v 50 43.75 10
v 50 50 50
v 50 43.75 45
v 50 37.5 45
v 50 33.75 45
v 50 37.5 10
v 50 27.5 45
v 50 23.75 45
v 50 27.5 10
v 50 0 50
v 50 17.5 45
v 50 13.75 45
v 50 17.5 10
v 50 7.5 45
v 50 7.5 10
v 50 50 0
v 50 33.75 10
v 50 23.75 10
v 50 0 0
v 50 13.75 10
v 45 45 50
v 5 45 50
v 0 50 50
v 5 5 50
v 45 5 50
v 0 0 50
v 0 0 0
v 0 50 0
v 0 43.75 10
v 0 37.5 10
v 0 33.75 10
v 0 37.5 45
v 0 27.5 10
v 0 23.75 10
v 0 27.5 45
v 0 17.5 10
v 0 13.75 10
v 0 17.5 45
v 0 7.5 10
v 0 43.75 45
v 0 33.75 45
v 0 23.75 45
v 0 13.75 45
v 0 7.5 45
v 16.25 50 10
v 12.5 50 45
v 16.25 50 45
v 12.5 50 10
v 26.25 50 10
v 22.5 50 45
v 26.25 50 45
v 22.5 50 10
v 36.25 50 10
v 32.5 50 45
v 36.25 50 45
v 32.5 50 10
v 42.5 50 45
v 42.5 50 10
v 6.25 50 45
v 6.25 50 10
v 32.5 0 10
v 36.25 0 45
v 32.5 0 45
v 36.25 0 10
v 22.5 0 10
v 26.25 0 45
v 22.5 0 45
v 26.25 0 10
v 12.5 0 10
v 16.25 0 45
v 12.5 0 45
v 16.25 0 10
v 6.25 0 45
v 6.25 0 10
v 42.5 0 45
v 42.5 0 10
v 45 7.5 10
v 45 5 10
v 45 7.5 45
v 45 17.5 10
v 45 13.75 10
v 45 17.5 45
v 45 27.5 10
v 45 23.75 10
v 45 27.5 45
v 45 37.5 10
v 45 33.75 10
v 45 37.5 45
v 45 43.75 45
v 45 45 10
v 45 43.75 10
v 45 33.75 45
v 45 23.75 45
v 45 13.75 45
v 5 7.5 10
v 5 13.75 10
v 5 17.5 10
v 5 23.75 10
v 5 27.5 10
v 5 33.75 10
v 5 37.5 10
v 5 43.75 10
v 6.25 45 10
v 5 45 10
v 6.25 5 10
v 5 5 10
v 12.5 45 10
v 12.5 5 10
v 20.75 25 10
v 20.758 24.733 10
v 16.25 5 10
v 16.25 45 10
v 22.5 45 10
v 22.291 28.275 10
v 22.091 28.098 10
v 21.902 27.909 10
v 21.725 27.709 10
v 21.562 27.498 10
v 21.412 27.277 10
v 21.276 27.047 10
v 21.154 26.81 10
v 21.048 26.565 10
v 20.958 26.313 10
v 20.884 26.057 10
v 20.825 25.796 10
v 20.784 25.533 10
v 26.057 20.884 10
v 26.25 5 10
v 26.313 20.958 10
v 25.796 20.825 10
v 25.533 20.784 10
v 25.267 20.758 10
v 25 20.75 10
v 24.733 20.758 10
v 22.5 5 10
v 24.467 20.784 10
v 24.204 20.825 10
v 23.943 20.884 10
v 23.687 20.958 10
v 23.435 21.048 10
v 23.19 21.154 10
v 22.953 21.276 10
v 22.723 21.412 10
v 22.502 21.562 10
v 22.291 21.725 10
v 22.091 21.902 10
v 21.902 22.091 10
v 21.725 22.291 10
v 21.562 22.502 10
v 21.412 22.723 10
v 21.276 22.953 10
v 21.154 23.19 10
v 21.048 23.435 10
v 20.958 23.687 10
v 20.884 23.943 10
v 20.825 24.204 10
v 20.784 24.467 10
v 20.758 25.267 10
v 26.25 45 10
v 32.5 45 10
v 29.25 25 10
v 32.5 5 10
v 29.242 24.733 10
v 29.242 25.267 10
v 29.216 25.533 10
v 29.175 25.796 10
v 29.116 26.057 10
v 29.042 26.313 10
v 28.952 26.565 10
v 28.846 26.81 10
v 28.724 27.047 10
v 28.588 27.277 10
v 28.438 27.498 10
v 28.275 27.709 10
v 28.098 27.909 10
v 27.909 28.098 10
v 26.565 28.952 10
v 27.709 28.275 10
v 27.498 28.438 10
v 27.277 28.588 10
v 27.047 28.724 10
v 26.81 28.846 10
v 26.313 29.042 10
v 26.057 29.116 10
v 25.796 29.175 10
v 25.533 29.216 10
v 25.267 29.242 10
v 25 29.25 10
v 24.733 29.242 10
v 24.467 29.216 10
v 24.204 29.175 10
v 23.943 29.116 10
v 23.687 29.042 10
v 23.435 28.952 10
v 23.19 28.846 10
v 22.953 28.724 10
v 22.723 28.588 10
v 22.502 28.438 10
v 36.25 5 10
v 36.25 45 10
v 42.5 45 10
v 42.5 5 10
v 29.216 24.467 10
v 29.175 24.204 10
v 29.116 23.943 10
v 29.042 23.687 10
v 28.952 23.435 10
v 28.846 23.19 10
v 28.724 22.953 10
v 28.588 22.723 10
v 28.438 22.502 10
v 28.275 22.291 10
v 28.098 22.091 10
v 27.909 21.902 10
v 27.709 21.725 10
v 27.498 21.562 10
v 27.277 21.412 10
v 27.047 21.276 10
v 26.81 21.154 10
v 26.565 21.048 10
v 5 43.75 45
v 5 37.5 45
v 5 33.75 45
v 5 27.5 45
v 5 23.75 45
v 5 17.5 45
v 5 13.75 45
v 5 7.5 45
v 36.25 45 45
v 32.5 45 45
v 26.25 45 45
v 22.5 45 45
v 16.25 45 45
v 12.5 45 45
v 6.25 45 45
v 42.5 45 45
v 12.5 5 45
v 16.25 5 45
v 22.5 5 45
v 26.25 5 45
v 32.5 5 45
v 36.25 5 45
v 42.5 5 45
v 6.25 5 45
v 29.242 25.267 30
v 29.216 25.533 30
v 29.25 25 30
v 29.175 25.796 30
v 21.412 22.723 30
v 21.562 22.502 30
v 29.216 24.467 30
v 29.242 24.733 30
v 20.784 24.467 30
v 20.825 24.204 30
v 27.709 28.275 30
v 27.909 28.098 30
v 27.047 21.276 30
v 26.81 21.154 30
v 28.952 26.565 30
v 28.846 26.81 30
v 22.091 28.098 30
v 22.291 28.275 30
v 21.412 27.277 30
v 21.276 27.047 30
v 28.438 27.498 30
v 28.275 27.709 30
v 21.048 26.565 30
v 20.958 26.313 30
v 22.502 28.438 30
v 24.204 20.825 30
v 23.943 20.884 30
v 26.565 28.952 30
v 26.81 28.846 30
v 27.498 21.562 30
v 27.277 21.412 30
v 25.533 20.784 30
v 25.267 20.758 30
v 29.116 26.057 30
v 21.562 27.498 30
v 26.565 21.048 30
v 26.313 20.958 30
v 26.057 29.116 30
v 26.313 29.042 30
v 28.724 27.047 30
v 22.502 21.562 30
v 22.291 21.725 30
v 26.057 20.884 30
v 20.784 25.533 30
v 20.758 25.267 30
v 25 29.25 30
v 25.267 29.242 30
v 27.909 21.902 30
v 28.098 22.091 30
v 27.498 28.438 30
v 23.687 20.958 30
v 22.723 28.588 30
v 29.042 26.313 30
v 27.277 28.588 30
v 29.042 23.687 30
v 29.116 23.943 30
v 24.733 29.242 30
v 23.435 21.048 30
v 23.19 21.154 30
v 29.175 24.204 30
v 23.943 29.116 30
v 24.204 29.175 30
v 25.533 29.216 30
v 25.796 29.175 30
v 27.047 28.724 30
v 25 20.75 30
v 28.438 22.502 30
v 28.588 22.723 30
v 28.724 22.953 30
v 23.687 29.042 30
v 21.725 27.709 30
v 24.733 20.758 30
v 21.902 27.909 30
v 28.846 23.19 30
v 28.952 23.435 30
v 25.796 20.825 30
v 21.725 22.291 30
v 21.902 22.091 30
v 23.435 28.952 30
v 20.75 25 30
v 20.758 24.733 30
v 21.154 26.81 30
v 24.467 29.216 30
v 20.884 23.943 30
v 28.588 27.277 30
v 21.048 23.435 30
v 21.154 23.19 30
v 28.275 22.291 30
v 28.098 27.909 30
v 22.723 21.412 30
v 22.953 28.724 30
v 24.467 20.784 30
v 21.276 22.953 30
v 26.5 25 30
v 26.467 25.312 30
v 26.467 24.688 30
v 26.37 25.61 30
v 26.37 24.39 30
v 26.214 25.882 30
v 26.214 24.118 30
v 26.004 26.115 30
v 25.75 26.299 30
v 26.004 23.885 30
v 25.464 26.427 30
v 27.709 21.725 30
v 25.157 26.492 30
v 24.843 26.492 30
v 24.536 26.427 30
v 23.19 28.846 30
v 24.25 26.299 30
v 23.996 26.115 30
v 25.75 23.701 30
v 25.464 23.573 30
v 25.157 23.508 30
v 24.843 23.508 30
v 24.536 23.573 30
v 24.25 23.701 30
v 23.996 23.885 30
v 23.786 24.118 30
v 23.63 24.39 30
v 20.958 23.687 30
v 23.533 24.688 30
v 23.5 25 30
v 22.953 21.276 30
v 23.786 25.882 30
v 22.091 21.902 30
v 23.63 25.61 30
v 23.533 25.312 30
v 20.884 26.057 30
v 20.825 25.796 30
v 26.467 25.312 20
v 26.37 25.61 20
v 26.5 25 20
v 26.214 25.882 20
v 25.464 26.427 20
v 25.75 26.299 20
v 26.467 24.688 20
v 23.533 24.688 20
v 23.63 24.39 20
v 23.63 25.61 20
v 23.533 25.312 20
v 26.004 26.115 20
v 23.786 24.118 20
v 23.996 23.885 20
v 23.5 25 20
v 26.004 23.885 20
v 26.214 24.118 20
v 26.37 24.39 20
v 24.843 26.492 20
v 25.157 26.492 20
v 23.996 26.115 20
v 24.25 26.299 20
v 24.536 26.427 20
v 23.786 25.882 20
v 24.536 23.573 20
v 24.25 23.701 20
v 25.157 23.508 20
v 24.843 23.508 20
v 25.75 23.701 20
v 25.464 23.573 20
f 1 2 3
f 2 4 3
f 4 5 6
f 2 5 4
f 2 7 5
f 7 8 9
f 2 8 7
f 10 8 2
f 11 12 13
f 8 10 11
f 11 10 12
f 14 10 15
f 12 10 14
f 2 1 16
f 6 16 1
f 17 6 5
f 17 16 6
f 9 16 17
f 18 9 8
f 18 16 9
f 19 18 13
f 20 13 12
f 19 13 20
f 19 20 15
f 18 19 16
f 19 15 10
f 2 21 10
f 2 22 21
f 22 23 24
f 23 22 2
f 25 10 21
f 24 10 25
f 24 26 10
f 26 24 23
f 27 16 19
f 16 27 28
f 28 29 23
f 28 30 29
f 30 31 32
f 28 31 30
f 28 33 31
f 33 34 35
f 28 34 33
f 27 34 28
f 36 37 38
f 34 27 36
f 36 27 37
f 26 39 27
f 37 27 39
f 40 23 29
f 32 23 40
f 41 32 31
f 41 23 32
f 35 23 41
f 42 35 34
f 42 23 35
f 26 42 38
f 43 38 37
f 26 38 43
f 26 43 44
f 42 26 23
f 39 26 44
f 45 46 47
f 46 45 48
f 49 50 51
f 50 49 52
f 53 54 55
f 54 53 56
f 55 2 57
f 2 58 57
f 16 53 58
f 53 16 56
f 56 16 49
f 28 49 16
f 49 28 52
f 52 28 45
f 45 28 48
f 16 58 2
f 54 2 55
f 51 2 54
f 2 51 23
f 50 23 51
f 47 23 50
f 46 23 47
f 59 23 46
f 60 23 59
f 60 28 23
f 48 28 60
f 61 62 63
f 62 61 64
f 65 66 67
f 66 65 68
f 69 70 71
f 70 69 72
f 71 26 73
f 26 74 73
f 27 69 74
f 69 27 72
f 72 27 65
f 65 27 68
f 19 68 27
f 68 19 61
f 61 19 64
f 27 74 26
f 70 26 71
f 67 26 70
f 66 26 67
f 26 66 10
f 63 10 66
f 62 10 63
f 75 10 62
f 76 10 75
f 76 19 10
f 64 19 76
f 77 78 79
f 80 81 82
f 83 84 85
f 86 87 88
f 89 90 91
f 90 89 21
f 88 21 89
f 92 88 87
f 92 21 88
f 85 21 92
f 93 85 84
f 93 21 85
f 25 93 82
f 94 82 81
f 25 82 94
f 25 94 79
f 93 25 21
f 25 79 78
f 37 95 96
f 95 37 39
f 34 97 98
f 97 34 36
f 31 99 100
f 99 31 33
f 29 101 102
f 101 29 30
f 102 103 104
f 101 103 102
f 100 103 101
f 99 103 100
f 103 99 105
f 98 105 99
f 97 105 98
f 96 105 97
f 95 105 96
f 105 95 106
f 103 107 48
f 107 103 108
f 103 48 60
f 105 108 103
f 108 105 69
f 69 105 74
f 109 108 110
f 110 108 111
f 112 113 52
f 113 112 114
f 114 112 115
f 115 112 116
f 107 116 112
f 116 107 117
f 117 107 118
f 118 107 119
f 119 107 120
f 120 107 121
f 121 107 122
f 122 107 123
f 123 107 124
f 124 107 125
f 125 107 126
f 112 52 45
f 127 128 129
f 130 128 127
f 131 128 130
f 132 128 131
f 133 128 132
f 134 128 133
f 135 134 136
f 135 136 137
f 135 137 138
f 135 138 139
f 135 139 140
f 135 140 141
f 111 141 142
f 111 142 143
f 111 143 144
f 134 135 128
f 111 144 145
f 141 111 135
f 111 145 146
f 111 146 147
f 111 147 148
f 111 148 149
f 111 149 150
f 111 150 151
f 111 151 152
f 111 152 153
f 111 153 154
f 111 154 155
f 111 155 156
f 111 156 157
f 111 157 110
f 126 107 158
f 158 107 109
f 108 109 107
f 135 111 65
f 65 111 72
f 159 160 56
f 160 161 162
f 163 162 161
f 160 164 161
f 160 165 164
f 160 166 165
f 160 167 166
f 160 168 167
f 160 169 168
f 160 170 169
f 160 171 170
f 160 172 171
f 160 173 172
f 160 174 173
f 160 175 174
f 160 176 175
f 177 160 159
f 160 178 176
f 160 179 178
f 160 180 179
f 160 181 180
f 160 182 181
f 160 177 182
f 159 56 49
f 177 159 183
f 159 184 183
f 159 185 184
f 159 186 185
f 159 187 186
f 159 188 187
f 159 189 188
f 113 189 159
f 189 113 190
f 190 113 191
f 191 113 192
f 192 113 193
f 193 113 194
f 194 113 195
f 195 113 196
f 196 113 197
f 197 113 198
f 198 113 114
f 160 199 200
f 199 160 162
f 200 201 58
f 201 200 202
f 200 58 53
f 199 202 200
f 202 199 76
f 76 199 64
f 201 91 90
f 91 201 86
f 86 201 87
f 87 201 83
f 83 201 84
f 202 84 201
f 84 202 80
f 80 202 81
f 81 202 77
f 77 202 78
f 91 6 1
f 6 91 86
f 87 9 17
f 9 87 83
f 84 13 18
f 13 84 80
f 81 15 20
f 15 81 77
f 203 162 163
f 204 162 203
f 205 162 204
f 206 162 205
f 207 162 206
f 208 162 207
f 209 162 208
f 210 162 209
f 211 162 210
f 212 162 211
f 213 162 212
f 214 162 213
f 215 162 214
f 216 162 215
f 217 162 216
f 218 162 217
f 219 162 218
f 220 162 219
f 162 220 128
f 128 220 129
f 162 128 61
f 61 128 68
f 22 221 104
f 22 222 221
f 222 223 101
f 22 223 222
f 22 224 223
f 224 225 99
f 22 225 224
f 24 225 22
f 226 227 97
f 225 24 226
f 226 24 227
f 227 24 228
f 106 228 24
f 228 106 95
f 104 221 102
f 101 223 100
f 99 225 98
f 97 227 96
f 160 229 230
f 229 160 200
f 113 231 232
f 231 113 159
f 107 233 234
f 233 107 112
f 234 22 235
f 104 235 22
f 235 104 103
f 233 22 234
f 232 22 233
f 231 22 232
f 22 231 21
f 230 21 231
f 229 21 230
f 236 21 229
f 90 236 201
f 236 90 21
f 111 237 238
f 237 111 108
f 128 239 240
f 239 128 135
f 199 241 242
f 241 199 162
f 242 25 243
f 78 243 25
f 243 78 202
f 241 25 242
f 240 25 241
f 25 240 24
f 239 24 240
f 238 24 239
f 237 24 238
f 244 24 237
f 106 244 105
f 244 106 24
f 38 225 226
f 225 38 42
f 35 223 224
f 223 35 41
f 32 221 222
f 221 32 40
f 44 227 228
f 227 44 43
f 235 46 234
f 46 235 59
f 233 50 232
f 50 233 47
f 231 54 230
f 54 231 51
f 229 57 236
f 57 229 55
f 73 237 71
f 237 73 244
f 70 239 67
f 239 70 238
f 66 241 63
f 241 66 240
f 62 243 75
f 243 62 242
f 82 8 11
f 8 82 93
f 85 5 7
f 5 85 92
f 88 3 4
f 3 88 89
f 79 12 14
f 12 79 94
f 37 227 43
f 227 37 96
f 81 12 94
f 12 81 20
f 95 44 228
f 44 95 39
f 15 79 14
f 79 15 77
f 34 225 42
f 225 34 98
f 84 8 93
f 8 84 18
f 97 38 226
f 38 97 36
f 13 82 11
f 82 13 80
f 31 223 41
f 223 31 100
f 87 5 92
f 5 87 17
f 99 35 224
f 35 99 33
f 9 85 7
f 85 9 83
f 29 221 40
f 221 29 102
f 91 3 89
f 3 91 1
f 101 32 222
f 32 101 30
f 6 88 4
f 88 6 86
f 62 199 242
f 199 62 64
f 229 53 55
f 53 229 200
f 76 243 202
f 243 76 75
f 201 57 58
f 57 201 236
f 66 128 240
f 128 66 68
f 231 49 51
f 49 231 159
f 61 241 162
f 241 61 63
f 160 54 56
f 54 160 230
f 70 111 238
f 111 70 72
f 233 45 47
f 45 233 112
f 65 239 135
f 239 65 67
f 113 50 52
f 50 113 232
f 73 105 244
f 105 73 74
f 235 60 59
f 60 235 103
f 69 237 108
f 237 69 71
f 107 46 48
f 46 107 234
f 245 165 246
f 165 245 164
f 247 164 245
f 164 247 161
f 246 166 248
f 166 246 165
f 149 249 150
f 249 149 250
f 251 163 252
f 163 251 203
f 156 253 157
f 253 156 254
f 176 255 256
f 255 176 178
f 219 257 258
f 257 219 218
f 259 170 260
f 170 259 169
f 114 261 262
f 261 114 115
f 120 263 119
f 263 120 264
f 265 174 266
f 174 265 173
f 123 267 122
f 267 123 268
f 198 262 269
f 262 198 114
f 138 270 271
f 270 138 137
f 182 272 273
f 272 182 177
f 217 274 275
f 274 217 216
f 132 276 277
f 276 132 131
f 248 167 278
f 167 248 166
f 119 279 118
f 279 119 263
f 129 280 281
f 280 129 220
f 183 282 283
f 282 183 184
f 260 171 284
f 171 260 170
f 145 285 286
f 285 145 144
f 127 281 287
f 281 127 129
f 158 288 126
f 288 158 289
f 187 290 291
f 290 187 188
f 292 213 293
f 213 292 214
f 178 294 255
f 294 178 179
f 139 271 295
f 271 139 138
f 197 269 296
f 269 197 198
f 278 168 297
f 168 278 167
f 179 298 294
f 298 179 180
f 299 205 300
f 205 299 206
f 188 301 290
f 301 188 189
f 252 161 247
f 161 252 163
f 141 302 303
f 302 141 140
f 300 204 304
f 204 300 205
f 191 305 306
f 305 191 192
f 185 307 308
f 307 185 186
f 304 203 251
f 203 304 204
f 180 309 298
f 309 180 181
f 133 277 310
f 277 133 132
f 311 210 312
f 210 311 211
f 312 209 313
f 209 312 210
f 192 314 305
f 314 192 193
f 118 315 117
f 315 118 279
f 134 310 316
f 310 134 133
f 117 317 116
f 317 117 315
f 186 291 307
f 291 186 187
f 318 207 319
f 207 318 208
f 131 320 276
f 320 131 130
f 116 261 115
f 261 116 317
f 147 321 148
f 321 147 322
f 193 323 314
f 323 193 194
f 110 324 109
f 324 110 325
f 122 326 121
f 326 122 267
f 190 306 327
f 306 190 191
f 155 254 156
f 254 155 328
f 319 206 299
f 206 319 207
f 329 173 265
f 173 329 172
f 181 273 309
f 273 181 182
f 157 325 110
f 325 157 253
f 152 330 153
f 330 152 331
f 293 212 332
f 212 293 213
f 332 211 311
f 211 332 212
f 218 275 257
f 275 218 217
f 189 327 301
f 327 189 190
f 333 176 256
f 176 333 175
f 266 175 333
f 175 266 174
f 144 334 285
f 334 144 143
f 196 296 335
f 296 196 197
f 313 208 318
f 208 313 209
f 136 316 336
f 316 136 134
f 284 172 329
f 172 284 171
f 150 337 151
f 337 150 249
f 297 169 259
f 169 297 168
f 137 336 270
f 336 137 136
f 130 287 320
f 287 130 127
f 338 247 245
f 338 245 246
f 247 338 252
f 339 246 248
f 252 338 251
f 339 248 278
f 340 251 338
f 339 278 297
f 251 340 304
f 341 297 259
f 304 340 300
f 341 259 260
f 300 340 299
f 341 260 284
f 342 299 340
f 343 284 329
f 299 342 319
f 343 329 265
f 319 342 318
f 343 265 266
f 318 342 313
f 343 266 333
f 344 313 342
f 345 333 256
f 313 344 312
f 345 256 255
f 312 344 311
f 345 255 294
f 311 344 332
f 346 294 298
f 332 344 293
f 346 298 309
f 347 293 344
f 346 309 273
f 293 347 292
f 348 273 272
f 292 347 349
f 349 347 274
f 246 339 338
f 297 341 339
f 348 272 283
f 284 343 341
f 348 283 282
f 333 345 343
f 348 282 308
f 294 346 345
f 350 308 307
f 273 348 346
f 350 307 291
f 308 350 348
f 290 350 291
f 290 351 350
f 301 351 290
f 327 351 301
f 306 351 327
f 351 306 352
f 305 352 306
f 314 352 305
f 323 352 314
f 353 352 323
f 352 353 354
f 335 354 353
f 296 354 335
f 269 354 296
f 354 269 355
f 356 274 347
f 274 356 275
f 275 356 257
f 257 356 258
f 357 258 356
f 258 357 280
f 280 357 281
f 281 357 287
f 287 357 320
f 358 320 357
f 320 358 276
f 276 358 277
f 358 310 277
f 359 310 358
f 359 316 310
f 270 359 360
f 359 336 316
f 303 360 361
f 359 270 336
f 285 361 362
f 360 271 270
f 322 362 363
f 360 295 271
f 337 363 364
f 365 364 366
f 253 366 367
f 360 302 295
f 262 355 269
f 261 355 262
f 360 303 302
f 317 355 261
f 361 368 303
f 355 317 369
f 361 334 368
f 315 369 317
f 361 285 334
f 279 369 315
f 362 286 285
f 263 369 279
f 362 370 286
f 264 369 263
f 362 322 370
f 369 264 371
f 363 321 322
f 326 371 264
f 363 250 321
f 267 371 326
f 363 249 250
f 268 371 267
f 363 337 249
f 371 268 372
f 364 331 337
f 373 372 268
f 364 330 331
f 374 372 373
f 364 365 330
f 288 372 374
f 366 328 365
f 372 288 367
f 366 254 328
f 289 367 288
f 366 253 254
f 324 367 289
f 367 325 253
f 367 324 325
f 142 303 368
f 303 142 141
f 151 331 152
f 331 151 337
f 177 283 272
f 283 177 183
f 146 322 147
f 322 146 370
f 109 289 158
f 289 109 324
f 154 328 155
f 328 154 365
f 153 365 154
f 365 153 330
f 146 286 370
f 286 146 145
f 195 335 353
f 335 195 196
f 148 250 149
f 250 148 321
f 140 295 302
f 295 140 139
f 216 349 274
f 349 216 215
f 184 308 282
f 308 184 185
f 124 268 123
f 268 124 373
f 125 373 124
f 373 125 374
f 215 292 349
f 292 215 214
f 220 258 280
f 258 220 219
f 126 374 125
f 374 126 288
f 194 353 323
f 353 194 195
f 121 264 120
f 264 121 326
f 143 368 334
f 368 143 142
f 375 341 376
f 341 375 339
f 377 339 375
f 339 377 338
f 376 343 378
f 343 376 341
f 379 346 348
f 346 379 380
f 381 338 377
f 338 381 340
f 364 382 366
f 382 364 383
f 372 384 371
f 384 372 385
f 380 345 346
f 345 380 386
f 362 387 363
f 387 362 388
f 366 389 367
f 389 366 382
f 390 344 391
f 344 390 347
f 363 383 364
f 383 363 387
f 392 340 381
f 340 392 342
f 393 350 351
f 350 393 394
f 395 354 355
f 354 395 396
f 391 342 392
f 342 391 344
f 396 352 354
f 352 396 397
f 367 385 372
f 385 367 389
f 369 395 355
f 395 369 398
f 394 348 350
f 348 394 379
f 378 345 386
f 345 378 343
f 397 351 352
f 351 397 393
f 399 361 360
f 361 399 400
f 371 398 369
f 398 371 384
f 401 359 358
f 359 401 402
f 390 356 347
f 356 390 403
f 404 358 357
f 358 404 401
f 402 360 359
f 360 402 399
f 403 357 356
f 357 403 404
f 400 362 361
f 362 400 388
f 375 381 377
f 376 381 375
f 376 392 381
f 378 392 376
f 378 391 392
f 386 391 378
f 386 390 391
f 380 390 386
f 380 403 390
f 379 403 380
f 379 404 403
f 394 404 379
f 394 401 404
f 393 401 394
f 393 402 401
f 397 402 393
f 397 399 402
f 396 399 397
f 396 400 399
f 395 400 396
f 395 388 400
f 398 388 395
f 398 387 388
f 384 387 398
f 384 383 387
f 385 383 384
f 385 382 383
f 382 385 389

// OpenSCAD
/*translate([-27,0,25])
    cube([5,50,50],center=true);

translate([27,0,25])
    cube([5,50,50],center=true);
    
translate([0,0,2.5])
    cube([50,50,5],center=true);*/
    
module caja(espesor=5,largo=50,ancho=50,altura=50){
    difference(){
        cube([largo,ancho,altura]);
        
        translate([espesor,espesor,2*espesor])
            cube([largo-2*espesor,ancho-2*espesor,altura]);
    }
}

module respirar(espesor=5,largo=50,ancho=50,altura=50){
    n=ancho/(2*espesor+1);
    for(i = [1 : 1: n]){
        translate([0,i*(2*espesor),2*espesor]){
        cube([largo+2*espesor,(5/4)*espesor,altura-3*espesor]);
        }
    }
}

module dona(altura=20,diam_ext=6,diam_int=2){
    difference(){
        cylinder(altura,d=diam_ext,$fn=100);
        translate([0,0,(altura/2)+5])
        cylinder(altura/2,d=diam_int,$fn=30);
    }
}

module jaula(){
    difference(){
        caja();
        
        translate([-2.5,-2.5,0])
        union(){
            translate([55,0,0])
            rotate([0,0,90])
                respirar();
            
                respirar();
        }
    }
}

union(){
    jaula();
    
    translate([25,25,0])
    dona(altura=30,diam_ext=8.5,diam_int=3);
}
/*union(){
    translate([55,0,0])
    rotate([0,0,90])
        respirar();
    
        respirar();
}*/
